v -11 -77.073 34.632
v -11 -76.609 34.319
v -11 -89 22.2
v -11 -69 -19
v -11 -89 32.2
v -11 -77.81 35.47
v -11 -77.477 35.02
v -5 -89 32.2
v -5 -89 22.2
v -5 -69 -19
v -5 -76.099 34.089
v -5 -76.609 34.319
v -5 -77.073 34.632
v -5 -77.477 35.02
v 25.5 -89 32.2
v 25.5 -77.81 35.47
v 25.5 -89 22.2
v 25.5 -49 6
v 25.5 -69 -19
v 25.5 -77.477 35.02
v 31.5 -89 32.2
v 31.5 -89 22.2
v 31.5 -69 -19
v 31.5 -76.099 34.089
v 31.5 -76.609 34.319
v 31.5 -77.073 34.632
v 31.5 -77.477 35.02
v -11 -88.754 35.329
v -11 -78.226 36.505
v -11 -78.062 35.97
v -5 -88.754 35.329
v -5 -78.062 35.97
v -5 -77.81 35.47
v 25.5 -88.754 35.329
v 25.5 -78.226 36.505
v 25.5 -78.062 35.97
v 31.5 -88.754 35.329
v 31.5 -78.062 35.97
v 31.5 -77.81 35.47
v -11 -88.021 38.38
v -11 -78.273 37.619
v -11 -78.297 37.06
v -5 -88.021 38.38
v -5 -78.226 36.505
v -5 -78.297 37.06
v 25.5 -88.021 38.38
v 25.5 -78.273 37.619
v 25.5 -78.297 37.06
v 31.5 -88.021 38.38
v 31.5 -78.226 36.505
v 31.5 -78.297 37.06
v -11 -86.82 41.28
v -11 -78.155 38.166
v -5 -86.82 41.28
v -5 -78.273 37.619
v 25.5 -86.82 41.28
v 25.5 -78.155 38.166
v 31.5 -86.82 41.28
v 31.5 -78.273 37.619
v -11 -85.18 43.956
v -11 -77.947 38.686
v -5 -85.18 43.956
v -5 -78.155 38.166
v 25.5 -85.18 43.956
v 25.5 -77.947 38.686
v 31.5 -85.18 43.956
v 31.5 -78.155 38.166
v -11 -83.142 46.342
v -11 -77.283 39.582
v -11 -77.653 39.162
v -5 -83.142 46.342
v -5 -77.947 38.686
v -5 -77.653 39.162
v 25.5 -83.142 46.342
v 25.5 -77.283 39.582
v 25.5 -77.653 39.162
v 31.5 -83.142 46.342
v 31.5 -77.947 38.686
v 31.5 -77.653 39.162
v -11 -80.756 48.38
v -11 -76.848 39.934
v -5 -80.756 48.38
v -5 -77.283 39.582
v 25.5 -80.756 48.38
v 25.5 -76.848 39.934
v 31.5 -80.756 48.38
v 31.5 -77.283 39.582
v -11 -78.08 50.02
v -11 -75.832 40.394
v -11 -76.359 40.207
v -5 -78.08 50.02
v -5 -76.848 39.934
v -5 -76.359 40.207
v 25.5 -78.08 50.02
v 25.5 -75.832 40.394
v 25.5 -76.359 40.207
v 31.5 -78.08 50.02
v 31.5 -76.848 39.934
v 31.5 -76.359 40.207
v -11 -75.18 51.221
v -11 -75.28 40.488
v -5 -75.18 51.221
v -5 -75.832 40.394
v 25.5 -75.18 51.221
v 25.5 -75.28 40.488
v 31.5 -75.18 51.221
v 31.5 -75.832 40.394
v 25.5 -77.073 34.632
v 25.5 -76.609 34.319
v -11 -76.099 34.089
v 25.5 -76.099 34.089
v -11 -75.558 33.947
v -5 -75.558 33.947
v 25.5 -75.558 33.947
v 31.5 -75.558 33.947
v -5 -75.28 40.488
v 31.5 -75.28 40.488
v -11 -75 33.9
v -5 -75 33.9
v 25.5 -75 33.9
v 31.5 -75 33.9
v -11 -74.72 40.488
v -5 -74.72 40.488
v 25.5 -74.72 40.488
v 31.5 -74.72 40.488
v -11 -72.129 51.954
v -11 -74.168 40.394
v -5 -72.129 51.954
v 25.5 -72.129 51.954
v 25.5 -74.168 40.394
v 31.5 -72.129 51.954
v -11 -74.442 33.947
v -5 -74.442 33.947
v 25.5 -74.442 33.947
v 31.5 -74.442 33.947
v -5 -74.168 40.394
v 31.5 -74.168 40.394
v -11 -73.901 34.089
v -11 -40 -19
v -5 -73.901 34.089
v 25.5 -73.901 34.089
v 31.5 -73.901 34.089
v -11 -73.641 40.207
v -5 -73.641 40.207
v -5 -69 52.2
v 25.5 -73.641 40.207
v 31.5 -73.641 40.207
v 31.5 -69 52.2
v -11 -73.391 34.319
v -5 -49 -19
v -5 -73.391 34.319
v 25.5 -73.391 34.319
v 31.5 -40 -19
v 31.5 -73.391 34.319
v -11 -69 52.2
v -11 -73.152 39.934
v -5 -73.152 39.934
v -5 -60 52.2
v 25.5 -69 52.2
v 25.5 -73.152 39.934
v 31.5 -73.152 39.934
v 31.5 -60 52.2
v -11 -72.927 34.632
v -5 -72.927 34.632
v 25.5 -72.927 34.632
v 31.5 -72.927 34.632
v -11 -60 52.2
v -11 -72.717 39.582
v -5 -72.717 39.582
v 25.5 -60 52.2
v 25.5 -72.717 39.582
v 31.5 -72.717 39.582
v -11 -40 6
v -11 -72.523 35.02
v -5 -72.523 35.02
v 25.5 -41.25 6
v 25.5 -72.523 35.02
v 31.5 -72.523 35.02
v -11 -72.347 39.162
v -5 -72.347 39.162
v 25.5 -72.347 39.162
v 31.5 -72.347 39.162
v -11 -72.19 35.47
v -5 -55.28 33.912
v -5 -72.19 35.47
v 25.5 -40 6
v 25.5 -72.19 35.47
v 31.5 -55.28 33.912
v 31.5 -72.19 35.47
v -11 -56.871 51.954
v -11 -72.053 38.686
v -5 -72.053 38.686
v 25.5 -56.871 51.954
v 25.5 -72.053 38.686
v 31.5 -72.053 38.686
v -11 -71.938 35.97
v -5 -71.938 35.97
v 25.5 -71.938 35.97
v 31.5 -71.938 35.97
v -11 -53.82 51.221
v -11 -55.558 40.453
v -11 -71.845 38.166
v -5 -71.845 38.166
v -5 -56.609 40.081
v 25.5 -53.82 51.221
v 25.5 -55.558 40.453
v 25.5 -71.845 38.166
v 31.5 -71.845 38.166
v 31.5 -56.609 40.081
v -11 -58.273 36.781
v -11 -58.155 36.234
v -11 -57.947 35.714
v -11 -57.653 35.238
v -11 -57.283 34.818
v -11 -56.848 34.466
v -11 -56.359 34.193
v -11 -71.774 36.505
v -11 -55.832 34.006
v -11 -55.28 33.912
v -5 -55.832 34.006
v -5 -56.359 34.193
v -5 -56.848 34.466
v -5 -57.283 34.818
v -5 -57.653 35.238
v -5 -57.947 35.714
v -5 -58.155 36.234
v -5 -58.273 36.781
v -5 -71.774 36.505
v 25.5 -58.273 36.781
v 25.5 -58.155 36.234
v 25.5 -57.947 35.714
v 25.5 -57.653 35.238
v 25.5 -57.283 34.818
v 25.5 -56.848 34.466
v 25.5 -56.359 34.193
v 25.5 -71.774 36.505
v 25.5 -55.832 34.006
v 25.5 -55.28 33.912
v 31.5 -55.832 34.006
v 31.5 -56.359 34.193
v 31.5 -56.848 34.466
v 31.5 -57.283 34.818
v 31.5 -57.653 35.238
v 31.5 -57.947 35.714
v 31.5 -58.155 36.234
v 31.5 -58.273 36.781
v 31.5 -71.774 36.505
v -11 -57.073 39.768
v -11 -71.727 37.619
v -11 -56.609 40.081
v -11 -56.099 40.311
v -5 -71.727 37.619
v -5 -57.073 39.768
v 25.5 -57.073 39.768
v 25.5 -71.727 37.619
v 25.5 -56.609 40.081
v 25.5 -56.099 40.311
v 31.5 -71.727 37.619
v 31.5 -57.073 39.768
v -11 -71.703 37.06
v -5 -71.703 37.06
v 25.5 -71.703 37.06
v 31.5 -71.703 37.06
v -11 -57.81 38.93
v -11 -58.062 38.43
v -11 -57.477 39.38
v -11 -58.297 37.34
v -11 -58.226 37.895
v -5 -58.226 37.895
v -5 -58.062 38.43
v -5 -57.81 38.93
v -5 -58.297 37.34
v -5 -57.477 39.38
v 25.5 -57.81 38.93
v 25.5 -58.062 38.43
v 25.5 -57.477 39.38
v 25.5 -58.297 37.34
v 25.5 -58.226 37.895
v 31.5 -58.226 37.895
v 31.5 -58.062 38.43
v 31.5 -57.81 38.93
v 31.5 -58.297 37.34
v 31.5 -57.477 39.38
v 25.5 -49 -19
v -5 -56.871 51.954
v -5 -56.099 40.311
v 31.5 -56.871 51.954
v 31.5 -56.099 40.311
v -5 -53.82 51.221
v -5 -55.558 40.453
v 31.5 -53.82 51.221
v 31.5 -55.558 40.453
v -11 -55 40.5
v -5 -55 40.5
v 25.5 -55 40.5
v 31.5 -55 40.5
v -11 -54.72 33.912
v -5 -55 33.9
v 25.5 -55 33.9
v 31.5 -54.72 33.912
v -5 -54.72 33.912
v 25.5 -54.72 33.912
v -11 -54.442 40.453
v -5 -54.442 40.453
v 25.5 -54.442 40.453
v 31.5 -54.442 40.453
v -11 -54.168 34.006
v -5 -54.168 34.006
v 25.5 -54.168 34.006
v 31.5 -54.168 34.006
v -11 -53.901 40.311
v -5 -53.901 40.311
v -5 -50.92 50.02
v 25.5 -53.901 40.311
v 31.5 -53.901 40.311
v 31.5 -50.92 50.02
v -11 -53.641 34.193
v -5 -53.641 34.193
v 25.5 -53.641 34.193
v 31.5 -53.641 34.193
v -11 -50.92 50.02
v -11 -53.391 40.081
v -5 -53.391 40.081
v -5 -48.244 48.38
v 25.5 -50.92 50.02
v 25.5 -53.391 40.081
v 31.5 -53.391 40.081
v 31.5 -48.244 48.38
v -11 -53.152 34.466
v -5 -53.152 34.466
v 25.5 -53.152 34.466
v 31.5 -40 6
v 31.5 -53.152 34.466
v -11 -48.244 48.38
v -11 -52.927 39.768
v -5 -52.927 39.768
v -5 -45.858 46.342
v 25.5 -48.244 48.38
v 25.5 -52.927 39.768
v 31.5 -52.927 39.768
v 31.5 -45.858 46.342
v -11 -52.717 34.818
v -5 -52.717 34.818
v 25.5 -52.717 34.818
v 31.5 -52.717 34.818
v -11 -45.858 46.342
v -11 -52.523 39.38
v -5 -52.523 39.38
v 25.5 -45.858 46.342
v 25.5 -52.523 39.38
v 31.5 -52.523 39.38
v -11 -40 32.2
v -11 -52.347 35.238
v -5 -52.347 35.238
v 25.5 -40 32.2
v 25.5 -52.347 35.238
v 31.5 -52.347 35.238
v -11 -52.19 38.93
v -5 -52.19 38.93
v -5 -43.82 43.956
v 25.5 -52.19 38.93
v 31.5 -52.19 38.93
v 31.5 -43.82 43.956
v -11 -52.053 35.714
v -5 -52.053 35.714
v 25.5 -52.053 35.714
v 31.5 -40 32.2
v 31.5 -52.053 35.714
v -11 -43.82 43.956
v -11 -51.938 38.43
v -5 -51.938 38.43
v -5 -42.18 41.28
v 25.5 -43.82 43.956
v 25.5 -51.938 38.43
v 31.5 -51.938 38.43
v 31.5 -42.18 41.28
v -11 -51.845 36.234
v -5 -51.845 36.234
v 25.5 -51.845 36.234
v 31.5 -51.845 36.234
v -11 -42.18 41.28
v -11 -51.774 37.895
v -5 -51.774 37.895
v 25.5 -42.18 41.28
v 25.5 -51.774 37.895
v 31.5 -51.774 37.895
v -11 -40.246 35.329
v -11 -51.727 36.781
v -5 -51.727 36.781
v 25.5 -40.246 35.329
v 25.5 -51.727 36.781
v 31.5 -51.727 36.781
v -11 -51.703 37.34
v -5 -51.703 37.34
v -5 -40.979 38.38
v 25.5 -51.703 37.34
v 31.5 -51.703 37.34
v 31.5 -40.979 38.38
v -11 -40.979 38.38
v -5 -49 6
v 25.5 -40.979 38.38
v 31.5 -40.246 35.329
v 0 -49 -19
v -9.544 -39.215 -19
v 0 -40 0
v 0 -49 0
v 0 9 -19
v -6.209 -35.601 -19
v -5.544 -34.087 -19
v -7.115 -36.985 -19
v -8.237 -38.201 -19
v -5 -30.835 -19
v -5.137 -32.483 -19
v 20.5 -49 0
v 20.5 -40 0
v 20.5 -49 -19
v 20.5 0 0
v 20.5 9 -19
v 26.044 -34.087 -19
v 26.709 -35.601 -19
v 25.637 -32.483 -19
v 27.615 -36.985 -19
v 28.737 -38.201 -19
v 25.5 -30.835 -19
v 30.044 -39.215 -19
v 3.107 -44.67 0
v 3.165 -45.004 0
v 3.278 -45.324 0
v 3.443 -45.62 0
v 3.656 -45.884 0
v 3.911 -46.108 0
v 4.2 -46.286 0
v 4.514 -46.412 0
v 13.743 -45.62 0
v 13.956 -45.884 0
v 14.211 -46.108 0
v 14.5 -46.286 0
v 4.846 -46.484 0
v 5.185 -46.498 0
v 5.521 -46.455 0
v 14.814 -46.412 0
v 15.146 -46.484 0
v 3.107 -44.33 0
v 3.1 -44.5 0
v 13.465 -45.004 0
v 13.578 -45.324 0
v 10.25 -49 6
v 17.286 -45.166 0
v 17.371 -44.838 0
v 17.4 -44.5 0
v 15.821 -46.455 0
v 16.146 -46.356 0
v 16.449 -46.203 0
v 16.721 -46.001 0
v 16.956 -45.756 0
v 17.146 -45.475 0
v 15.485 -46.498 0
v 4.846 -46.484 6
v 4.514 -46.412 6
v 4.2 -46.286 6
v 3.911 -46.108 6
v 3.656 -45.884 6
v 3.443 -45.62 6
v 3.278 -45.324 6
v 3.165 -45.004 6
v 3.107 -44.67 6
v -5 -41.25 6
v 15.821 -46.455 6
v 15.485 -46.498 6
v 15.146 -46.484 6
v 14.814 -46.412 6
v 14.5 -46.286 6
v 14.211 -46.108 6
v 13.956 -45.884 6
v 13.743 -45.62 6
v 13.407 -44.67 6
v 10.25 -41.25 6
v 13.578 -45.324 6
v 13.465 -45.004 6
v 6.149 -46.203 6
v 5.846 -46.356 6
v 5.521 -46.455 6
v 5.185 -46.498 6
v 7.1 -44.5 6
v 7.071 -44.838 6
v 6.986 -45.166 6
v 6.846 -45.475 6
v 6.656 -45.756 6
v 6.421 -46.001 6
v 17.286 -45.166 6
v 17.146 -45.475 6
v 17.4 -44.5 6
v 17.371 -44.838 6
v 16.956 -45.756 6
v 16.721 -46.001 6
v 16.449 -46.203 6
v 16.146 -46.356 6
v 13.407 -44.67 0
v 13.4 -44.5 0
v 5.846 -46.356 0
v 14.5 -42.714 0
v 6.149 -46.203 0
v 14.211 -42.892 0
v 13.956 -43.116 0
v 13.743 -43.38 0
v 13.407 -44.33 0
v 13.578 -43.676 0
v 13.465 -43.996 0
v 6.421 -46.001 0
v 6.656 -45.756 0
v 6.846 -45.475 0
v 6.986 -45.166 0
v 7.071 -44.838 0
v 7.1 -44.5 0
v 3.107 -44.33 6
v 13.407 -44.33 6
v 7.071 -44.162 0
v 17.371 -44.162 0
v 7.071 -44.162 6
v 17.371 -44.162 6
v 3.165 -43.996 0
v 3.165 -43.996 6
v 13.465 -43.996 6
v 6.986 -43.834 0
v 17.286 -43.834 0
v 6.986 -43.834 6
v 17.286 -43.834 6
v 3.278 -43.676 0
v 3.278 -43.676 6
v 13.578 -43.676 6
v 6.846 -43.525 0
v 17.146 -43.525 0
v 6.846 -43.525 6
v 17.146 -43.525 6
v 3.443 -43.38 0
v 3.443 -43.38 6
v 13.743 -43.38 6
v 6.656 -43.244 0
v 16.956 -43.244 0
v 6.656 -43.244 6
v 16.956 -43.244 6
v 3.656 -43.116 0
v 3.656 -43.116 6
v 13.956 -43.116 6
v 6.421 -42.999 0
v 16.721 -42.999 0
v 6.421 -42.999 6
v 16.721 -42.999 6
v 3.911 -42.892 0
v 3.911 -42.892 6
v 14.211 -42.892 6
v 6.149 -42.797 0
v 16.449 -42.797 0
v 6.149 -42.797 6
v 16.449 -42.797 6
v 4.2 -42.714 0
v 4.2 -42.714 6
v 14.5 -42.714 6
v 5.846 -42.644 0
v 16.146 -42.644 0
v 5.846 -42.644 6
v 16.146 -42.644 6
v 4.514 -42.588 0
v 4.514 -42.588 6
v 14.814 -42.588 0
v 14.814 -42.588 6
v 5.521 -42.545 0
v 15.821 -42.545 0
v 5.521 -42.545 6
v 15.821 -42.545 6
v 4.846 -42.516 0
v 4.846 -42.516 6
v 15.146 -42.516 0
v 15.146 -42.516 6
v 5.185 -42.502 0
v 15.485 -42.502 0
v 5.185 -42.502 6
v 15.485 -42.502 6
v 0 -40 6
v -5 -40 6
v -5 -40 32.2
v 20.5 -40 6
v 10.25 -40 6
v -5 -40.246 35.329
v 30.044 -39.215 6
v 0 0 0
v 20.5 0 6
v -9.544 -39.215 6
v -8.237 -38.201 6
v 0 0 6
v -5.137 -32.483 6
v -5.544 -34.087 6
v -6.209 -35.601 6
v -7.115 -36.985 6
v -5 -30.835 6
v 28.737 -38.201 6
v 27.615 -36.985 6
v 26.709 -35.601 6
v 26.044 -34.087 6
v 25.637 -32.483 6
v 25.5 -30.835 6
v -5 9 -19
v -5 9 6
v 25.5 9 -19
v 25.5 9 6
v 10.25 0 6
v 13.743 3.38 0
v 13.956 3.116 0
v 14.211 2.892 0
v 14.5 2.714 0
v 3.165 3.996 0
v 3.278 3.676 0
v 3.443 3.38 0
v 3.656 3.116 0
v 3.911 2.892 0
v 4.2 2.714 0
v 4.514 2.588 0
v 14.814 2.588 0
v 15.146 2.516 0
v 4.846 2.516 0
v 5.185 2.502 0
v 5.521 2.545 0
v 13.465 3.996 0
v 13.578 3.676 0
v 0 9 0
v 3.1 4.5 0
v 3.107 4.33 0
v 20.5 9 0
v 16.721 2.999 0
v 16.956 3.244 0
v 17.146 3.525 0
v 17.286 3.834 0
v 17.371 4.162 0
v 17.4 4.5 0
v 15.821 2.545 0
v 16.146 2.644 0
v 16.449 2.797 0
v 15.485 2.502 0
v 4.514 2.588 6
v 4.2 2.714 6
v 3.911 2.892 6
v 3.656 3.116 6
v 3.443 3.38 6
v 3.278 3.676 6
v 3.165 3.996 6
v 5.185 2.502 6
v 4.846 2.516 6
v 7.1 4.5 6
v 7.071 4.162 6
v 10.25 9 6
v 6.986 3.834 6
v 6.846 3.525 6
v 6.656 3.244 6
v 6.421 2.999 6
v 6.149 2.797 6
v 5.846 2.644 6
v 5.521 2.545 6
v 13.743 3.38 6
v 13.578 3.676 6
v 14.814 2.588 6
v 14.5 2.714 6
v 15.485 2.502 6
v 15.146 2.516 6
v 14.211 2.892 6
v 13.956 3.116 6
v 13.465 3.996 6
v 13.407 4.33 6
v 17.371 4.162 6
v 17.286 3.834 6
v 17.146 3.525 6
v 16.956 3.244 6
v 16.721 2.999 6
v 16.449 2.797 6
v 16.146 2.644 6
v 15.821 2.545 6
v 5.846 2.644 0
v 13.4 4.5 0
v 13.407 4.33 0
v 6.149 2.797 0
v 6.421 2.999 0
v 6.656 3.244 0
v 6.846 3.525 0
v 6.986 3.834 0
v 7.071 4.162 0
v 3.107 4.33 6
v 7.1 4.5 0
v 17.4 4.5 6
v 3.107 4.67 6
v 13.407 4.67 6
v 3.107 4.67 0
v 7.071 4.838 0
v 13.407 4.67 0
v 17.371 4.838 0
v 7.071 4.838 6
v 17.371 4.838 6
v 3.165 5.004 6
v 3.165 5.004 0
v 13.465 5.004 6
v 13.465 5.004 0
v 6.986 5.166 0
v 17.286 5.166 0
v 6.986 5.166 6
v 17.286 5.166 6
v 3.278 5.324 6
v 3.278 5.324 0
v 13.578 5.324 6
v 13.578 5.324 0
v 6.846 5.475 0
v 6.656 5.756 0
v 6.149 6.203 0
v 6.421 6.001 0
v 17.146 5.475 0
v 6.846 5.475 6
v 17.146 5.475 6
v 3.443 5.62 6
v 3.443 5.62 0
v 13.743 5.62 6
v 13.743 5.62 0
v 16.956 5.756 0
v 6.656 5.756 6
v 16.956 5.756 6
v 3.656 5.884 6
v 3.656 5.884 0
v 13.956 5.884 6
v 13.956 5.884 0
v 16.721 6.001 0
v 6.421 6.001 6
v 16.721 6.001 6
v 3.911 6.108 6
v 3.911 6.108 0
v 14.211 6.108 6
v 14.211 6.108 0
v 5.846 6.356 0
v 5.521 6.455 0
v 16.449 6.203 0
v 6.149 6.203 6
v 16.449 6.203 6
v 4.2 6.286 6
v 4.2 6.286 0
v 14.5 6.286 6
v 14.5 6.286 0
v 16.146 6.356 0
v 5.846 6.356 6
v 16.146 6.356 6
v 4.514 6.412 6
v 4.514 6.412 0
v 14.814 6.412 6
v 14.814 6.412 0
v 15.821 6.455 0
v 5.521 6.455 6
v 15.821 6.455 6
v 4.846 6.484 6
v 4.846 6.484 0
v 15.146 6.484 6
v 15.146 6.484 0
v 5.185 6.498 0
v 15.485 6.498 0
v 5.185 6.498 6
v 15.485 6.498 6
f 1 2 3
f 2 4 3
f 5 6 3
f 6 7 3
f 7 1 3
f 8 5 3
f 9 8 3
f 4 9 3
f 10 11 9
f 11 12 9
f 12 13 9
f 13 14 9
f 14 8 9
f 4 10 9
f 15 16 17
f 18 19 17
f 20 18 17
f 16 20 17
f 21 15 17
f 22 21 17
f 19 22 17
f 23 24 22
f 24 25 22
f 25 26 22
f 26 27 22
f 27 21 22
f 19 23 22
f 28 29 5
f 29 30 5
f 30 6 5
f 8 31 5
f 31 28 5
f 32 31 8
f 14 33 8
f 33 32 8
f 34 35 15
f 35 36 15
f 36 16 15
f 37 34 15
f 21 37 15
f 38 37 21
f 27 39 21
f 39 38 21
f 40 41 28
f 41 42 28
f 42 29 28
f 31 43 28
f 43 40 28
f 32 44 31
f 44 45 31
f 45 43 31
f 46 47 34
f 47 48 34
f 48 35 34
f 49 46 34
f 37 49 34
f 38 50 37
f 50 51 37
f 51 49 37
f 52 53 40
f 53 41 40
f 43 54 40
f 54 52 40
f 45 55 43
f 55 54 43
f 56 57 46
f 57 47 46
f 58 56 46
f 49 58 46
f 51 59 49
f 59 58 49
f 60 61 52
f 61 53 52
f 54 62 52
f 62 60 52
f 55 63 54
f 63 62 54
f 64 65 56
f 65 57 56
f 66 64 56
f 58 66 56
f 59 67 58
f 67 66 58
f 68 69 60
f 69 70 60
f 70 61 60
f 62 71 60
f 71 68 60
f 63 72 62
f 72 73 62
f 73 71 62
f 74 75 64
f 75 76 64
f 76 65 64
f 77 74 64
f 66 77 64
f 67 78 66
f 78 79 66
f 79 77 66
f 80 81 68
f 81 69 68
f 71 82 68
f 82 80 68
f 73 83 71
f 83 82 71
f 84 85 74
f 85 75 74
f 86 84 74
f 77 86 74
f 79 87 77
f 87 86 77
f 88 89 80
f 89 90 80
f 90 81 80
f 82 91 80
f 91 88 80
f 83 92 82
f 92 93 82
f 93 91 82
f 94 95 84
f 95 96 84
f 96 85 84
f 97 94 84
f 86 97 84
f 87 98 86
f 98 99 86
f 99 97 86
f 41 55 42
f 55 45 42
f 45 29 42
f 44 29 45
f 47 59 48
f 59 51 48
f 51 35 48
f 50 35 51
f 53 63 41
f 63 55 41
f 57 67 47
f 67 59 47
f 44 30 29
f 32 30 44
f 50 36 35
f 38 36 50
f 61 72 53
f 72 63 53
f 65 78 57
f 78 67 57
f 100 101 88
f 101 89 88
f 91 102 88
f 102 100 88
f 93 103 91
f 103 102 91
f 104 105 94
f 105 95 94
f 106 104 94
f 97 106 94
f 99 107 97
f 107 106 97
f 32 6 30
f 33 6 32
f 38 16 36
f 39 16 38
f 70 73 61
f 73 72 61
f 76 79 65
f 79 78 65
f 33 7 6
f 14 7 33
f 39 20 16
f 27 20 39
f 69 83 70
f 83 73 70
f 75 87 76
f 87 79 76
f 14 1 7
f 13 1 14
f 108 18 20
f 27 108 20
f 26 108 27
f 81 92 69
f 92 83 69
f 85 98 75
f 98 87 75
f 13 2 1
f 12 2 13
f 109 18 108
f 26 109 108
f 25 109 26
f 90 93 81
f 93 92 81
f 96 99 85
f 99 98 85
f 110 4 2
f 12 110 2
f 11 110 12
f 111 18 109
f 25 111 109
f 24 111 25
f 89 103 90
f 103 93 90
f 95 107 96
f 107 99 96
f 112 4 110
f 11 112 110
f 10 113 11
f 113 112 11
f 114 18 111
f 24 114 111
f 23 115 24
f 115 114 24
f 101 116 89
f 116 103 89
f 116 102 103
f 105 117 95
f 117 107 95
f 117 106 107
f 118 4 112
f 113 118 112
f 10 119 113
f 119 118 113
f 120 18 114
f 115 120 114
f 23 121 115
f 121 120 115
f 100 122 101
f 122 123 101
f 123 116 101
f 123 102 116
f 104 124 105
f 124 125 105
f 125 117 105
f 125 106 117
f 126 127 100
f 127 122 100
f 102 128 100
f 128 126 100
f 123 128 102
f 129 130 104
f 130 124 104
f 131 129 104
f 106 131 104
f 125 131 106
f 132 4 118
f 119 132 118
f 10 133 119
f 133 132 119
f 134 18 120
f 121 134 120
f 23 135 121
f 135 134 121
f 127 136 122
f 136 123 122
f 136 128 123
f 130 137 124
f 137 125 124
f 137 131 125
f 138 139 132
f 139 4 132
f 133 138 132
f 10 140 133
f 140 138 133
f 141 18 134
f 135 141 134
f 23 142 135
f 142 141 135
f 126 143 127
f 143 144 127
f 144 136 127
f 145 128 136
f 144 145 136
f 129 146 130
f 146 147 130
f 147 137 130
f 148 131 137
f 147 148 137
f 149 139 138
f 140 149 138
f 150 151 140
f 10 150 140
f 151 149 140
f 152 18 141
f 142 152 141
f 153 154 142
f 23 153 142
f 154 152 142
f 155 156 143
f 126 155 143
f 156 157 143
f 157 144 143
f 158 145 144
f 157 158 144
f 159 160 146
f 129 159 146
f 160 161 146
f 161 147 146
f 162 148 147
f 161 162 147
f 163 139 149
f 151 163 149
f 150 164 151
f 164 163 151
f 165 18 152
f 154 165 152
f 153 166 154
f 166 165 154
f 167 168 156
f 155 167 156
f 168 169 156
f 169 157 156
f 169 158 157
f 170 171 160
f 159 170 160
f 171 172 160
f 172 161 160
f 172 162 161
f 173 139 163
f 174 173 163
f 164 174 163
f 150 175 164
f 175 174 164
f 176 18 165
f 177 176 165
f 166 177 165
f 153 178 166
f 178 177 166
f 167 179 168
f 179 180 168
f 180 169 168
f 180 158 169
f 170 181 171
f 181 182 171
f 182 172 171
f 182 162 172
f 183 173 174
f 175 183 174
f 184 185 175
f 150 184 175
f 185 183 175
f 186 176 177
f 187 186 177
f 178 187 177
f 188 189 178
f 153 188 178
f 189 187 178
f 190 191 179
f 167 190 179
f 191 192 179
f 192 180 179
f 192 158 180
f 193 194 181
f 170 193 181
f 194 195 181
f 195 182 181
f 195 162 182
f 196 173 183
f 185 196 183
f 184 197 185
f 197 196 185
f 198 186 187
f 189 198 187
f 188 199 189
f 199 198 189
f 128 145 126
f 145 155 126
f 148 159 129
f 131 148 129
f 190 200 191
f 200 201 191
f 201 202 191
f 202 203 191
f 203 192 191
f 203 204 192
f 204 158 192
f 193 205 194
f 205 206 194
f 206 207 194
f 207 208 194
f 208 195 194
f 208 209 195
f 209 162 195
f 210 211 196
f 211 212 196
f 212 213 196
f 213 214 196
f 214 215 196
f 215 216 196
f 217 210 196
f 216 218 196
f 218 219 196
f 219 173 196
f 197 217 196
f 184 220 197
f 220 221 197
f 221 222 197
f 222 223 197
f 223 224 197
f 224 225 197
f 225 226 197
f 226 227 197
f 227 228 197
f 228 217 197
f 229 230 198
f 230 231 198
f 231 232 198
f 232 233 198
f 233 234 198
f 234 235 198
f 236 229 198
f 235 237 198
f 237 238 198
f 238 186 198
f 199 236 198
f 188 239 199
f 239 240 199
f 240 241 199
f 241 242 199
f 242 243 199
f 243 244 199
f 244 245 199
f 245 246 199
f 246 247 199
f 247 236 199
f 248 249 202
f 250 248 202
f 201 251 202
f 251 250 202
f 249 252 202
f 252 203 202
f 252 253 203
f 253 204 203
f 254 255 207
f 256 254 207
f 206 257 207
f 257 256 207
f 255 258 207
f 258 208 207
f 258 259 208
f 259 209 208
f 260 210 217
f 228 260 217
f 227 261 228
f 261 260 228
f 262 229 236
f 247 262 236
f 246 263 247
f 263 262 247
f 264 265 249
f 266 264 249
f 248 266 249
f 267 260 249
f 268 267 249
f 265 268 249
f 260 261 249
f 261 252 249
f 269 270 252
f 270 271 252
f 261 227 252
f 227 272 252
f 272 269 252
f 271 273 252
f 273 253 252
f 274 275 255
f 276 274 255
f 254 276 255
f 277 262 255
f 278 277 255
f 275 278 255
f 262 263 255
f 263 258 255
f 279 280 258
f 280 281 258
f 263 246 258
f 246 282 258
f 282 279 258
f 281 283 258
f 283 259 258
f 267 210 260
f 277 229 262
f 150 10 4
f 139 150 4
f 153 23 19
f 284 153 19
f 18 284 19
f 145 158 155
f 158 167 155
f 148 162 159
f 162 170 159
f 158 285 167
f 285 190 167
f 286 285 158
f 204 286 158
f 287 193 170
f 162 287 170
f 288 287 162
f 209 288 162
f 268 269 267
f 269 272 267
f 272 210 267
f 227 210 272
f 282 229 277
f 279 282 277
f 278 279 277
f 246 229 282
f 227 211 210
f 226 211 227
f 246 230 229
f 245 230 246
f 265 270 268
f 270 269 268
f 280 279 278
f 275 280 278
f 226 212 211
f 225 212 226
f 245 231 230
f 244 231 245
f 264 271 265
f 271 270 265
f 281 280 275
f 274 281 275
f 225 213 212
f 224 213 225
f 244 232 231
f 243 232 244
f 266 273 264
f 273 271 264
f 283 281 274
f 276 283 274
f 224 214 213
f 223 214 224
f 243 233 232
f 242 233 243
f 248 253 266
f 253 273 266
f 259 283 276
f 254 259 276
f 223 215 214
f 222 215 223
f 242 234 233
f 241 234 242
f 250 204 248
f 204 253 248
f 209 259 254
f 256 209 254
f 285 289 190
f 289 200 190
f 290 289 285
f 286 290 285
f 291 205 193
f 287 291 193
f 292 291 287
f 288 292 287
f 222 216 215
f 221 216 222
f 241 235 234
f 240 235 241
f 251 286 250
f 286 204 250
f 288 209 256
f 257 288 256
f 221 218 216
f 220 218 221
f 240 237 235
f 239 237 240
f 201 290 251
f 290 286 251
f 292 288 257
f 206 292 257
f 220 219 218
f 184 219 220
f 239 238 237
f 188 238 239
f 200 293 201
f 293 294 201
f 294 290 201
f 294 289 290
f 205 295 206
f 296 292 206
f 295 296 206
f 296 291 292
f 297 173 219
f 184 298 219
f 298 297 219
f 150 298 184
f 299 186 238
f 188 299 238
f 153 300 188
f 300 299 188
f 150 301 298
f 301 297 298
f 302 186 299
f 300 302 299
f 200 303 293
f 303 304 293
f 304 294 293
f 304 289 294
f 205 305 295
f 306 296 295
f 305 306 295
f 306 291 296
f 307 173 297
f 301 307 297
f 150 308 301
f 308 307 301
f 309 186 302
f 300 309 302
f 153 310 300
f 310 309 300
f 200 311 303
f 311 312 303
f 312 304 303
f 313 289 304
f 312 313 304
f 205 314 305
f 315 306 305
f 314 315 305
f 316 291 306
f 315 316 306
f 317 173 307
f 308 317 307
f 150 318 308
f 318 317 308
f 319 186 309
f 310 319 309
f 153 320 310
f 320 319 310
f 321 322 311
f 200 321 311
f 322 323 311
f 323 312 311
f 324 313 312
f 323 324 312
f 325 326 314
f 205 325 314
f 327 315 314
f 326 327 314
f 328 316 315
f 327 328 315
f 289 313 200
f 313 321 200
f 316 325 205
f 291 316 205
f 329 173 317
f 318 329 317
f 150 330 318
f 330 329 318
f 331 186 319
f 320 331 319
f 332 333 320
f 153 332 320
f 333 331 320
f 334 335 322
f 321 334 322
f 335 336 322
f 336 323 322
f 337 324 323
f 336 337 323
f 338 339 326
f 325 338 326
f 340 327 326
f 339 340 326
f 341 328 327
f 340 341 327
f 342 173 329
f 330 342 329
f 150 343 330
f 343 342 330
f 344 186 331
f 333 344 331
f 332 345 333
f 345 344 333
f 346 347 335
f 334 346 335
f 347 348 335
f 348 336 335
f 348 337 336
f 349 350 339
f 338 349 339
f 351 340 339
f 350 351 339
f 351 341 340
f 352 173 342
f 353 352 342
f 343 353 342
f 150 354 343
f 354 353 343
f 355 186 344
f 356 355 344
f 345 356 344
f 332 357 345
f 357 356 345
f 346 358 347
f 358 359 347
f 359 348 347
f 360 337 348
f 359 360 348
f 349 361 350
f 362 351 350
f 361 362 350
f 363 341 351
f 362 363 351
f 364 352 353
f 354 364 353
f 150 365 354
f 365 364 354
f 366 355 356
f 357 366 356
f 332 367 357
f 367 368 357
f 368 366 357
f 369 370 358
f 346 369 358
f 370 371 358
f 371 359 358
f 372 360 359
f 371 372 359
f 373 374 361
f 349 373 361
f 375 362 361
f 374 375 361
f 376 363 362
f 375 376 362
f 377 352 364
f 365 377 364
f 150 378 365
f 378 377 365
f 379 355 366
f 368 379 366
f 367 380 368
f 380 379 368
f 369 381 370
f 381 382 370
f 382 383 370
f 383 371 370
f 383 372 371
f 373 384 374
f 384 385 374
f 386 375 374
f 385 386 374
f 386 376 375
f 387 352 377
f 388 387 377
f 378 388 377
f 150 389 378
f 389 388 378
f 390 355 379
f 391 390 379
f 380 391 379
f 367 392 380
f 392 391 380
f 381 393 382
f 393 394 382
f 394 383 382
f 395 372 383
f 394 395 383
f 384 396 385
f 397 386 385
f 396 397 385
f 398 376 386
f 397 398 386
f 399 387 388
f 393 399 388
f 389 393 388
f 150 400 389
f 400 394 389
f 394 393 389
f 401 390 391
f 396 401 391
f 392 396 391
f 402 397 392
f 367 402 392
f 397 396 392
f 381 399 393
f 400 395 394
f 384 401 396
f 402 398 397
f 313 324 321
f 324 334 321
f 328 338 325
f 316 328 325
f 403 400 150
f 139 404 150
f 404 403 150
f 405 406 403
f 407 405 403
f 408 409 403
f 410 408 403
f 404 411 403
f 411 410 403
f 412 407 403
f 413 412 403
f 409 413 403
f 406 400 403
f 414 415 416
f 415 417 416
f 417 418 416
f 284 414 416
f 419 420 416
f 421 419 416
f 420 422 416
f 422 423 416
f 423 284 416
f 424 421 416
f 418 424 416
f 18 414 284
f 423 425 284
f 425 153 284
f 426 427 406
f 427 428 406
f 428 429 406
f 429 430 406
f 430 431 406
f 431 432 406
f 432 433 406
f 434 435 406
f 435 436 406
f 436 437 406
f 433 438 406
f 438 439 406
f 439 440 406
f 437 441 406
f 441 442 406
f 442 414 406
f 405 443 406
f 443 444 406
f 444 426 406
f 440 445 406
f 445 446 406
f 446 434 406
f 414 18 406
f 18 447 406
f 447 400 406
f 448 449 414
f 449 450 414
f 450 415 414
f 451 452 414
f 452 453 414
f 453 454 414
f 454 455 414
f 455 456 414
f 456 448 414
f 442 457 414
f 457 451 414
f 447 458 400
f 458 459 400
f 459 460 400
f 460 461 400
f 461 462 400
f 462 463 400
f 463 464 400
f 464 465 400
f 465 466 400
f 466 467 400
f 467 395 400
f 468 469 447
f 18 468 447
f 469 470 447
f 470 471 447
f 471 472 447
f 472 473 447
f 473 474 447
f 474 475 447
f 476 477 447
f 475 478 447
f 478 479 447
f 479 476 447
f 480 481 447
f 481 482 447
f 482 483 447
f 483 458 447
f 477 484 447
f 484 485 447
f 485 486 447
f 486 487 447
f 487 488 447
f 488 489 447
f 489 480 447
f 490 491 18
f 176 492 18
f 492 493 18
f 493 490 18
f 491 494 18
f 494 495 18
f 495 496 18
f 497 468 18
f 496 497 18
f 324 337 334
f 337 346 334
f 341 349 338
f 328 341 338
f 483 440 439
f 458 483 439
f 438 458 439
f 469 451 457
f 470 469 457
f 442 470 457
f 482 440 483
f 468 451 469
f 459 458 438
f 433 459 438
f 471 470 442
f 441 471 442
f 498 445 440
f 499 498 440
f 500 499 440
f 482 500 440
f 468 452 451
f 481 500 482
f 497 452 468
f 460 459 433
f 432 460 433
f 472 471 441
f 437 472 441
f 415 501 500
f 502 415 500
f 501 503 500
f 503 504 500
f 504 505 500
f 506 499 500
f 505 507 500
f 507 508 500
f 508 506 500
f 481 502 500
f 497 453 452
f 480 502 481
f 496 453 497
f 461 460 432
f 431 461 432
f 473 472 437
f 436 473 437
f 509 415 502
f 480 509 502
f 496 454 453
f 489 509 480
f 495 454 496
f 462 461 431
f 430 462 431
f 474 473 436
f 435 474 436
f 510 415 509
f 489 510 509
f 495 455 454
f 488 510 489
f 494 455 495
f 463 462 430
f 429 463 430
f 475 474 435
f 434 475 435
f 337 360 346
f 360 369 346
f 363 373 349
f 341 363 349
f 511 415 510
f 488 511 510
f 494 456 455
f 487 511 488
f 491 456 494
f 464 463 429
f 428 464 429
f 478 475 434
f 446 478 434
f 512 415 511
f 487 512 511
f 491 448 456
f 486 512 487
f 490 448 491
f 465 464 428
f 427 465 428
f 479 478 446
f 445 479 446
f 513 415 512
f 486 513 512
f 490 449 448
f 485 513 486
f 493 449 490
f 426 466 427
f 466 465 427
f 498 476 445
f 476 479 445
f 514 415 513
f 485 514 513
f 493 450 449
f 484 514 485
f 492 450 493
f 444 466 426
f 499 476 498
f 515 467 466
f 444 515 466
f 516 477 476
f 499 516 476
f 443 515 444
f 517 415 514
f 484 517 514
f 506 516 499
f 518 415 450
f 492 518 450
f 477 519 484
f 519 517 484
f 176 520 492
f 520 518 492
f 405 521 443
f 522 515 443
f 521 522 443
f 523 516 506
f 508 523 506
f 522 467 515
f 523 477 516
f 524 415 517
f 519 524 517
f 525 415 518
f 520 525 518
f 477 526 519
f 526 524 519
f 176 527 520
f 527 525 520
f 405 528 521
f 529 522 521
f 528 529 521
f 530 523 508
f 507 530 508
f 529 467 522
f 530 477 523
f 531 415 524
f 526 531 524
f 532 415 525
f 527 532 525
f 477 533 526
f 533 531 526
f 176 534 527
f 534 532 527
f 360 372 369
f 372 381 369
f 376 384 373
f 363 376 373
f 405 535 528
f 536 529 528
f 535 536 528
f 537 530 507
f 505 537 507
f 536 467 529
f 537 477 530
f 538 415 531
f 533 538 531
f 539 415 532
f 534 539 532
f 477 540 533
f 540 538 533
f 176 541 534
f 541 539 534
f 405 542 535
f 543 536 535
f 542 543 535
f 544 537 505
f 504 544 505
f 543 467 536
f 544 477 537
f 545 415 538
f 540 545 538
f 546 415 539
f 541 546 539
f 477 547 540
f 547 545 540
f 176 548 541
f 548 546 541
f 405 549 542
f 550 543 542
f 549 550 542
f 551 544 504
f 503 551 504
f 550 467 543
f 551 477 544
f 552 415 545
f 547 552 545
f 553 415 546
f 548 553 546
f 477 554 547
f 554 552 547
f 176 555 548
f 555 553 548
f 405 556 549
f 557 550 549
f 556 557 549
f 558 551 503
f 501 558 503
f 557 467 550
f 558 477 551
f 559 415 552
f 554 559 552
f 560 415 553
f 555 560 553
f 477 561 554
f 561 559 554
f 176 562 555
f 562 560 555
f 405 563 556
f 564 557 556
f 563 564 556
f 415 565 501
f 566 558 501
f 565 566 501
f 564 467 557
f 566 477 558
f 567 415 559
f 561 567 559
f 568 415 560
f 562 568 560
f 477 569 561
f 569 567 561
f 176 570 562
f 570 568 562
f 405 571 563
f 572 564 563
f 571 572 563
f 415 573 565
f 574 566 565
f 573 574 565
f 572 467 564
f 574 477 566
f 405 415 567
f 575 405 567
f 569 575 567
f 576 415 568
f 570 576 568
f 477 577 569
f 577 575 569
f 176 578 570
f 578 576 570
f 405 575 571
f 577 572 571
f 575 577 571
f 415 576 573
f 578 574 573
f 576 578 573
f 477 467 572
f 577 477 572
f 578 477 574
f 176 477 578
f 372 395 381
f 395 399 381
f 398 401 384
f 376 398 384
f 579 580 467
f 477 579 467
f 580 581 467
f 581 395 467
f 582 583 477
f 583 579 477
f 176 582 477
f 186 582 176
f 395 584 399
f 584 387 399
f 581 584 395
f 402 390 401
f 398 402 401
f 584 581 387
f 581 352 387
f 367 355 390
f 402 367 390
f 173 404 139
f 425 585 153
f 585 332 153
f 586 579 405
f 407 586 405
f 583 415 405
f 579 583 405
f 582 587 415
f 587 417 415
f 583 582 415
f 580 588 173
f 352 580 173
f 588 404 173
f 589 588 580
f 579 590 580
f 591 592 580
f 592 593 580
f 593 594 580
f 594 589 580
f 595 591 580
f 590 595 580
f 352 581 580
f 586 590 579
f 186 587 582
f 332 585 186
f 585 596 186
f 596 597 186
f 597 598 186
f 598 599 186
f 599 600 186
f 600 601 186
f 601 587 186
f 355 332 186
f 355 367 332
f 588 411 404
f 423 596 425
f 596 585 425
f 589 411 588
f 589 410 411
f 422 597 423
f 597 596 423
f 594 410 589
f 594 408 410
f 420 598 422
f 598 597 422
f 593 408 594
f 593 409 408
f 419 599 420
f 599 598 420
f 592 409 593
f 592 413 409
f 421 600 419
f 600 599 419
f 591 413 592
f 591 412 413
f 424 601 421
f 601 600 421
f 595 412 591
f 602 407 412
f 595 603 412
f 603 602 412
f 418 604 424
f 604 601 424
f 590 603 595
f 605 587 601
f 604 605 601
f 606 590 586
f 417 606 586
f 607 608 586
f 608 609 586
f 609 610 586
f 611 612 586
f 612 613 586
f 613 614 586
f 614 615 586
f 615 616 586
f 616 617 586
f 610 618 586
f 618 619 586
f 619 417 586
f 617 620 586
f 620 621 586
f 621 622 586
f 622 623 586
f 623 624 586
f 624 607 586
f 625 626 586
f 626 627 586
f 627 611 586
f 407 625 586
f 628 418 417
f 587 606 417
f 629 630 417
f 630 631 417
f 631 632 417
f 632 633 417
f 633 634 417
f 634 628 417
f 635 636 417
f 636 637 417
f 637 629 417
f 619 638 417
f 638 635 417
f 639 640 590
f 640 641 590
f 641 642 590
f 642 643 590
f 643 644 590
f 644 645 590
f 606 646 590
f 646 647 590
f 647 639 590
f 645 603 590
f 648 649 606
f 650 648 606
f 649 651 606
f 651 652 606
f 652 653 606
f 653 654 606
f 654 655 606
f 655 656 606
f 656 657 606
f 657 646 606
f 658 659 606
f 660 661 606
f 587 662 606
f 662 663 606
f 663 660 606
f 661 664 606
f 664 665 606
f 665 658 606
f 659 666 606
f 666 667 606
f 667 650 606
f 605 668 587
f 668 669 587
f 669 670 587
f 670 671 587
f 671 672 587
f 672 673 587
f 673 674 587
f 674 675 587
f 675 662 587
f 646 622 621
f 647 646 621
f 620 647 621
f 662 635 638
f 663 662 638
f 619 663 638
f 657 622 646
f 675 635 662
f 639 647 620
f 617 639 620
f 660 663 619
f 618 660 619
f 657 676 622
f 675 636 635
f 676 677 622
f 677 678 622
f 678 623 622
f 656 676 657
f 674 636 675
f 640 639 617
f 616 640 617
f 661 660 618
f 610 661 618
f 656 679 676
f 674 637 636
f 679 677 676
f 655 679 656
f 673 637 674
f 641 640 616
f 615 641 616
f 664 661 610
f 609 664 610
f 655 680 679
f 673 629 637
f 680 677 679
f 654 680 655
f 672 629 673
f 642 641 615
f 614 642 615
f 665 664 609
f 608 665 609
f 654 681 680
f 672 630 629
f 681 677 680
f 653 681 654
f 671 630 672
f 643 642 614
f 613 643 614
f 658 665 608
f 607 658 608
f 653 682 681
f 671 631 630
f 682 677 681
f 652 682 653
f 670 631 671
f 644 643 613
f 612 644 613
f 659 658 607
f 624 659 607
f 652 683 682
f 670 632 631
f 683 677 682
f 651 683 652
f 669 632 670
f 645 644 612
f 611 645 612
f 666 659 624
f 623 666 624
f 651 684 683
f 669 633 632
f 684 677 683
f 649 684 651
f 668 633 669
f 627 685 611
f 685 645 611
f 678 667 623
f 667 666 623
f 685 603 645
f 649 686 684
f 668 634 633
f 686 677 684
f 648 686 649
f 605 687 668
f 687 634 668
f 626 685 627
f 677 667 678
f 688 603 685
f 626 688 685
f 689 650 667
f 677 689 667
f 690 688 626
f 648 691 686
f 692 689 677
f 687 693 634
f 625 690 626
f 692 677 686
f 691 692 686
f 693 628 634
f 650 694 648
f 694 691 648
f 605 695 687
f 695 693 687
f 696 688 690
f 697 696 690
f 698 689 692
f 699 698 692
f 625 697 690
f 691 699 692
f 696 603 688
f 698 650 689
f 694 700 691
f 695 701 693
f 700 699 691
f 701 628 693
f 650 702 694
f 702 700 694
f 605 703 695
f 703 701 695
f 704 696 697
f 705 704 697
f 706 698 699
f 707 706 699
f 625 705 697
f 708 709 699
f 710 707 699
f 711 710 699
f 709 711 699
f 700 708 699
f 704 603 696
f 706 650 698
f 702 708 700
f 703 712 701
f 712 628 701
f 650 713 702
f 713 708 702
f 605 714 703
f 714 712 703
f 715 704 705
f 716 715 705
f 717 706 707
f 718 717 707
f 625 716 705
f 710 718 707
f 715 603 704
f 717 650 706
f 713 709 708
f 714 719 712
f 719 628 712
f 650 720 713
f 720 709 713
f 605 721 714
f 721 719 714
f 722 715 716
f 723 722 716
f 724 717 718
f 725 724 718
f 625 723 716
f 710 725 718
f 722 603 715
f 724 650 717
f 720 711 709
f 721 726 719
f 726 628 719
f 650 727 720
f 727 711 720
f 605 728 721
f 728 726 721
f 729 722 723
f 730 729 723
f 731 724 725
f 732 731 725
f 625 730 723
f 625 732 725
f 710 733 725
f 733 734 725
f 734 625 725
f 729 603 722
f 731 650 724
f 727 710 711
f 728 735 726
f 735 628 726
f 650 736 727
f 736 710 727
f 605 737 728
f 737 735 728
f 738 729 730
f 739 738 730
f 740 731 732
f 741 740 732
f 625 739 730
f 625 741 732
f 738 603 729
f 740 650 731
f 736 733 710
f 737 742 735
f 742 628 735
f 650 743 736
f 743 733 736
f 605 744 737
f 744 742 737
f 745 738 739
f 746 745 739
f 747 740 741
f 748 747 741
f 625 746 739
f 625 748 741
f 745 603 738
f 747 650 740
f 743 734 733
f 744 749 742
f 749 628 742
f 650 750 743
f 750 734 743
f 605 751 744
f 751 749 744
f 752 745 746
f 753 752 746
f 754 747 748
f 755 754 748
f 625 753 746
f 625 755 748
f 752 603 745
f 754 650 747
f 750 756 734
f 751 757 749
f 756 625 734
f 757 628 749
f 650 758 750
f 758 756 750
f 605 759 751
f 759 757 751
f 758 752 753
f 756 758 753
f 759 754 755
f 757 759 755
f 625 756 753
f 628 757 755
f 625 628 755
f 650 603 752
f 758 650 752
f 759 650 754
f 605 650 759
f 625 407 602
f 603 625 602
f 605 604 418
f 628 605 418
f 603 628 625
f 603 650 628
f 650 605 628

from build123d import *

# Parameters (mm, degrees)
SKETCH1_W            = 20.5
SKETCH1_H            = 9
BOSS_EXTRUDE1_DEPTH  = 6
SKETCH2_W            = 25
SKETCH2_H            = 58
BOSS_EXTRUDE2_DEPTH  = 5
LPATTERN1_COUNT      = 2
LPATTERN1_PITCH      = 49
LPATTERN2_COUNT      = 2
LPATTERN2_PITCH      = 25.5
CUT_EXTRUDE1_REACH   = 62.632
SKETCH3_R            = 2
LPATTERN3_COUNT      = 2
LPATTERN3_PITCH      = 10.3
LPATTERN3_COUNT_DIR2 = 2
LPATTERN3_PITCH_DIR2 = 49
SKETCH4_W            = 25
SKETCH4_H            = 29
BOSS_EXTRUDE3_DEPTH  = 6
LPATTERN4_COUNT      = 2
LPATTERN4_PITCH      = 36.5
SKETCH6_W            = 6
SKETCH6_H            = 29
BOSS_EXTRUDE5_DEPTH  = 46.2
FILLET1_R            = 10
M6_CLEARANCE_HOLE1_D = 6.6
SKETCH9_W            = 6
SKETCH9_H            = 30
BOSS_EXTRUDE6_DEPTH  = 20
BOSS_EXTRUDE7_DEPTH  = 6
LPATTERN5_COUNT      = 2
LPATTERN5_PITCH      = 36.5
FILLET2_R            = 20
M6_CLEARANCE_HOLE2_D = 6.6


with BuildPart() as part:
    # Sketch1 → Boss-Extrude1 (new body)
    with BuildSketch(Plane.XY):
        with Locations((10.25, 4.5)):
            Rectangle(SKETCH1_W, SKETCH1_H)
    boss_extrude1 = extrude(amount=BOSS_EXTRUDE1_DEPTH)

    # Sketch2 → Boss-Extrude2 (add)
    with BuildSketch(Plane(origin=(20.5, 0, 0), x_dir=(0, 0, -1), z_dir=(1, 0, 0))):
        with Locations((6.5, -20)):
            Rectangle(SKETCH2_W, SKETCH2_H)
    boss_extrude2 = extrude(amount=BOSS_EXTRUDE2_DEPTH)

    # LPattern1: Boss-Extrude1 ×2
    with Locations(*[(0, -i * LPATTERN1_PITCH, 0) for i in range(1, LPATTERN1_COUNT)]):
        add(boss_extrude1)

    # LPattern2: Boss-Extrude2 ×2
    with Locations(*[(-i * LPATTERN2_PITCH, 0, 0) for i in range(1, LPATTERN2_COUNT)]):
        add(boss_extrude2)

    # Sketch3 → Cut-Extrude1 (cut, up to next)
    with BuildSketch(Plane.XY.offset(6), mode=Mode.PRIVATE) as cut_extrude1_sk1:
        with Locations((5.1, 4.5)):
            Circle(SKETCH3_R)
    cut_extrude1_tool1 = extrude(cut_extrude1_sk1.sketch, amount=-CUT_EXTRUDE1_REACH, mode=Mode.PRIVATE) & part.part
    cut_extrude1 = cut_extrude1_tool1.solids().sort_by_distance((5.1, 4.5, 6))[0]
    add(cut_extrude1, mode=Mode.SUBTRACT)

    # LPattern3: Cut-Extrude1 2 × 2
    with Locations(*[(i * LPATTERN3_PITCH, -j * LPATTERN3_PITCH_DIR2, 0) for i in range(LPATTERN3_COUNT) for j in range(LPATTERN3_COUNT_DIR2) if (i, j) != (0, 0)]):
        add(cut_extrude1, mode=Mode.SUBTRACT)

    # Sketch4 → Boss-Extrude3 (add)
    with BuildSketch(Plane(origin=(25.5, 0, 0), x_dir=(0, 0, -1), z_dir=(1, 0, 0))):
        with Locations((6.5, -54.5)):
            Rectangle(SKETCH4_W, SKETCH4_H)
    boss_extrude3 = extrude(amount=BOSS_EXTRUDE3_DEPTH)

    # LPattern4: Boss-Extrude3 ×2
    with Locations(*[(-i * LPATTERN4_PITCH, 0, 0) for i in range(1, LPATTERN4_COUNT)]):
        add(boss_extrude3)

    # Sketch6 → Boss-Extrude5 (add)
    with BuildSketch(Plane.XY.offset(6)):
        with Locations((28.5, -54.5)):
            Rectangle(SKETCH6_W, SKETCH6_H)
        with Locations((-8, -54.5)):
            Rectangle(SKETCH6_W, SKETCH6_H)
    extrude(amount=BOSS_EXTRUDE5_DEPTH)

    # Fillet1
    # the kernel refuses this fillet: 10 mm, written as the material it adds along each edge
    with BuildSketch(Plane(origin=(25.5, -40, 6), x_dir=(0, 1, 0), z_dir=(0, 0, -1))) as fillet1_piece_1:
        with BuildLine():
            CenterArc((9.16515139, 10), FILLET1_R, 203.578178478, 66.421821522)
            Line((0, 6), (0, 0))
            Line((0, 0), (9.16515139, 0))
        make_face()
    extrude(amount=25)
    with BuildSketch(Plane(origin=(-5, -40, 6), x_dir=(-1, 0, 0), z_dir=(0, 0, -1))) as fillet1_piece_2:
        with BuildLine():
            CenterArc((10, 9.16515139), FILLET1_R, 180, 66.421821522)
            Line((0, 9.16515139), (0, 0))
            Line((0, 0), (6, 0))
        make_face()
    extrude(amount=25)

    # M6 Clearance Hole1 (through all)
    with Locations(Plane.ZY.offset(11)):
        with Locations((37.2, -55)):
            Hole(M6_CLEARANCE_HOLE1_D / 2)

    # Sketch9 → Boss-Extrude6 (add)
    with BuildSketch(Plane.XZ.offset(69)):
        with Locations((28.5, 37.2)):
            Rectangle(SKETCH9_W, SKETCH9_H)
        with Locations((-8, 37.2)):
            Rectangle(SKETCH9_W, SKETCH9_H)
    extrude(amount=BOSS_EXTRUDE6_DEPTH)

    # Sketch10 → Boss-Extrude7 (add)
    with BuildSketch(Plane(origin=(31.5, 0, 0), x_dir=(0, 0, -1), z_dir=(1, 0, 0))):
        Polygon((-22.2, -80.626229403), (-22.2, -89), (19, -69), (-19.89821605, -69), align=None)
        Polygon((-22.2, -69), (-22.2, -80.626229403), (-19.89821605, -69), align=None)
    boss_extrude7 = extrude(amount=-BOSS_EXTRUDE7_DEPTH)

    # LPattern5: Boss-Extrude7 ×2
    with Locations(*[(-i * LPATTERN5_PITCH, 0, 0) for i in range(1, LPATTERN5_COUNT)]):
        add(boss_extrude7)

    # Fillet2
    fillet2_edges = [part.edges().sort_by_distance(p)[0] for p in [
        (28.5, -40, 52.2),
        (-8, -40, 52.2),
        (28.5, -89, 52.2),
        (-8, -89, 52.2),
    ]]
    fillet(fillet2_edges, radius=FILLET2_R)

    # M6 Clearance Hole2 (through all)
    with Locations(Plane(origin=(31.5, 0, 0), x_dir=(0, 0, -1), z_dir=(1, 0, 0))):
        with Locations((-37.2, -75)):
            Hole(M6_CLEARANCE_HOLE2_D / 2)


solid = part.part
